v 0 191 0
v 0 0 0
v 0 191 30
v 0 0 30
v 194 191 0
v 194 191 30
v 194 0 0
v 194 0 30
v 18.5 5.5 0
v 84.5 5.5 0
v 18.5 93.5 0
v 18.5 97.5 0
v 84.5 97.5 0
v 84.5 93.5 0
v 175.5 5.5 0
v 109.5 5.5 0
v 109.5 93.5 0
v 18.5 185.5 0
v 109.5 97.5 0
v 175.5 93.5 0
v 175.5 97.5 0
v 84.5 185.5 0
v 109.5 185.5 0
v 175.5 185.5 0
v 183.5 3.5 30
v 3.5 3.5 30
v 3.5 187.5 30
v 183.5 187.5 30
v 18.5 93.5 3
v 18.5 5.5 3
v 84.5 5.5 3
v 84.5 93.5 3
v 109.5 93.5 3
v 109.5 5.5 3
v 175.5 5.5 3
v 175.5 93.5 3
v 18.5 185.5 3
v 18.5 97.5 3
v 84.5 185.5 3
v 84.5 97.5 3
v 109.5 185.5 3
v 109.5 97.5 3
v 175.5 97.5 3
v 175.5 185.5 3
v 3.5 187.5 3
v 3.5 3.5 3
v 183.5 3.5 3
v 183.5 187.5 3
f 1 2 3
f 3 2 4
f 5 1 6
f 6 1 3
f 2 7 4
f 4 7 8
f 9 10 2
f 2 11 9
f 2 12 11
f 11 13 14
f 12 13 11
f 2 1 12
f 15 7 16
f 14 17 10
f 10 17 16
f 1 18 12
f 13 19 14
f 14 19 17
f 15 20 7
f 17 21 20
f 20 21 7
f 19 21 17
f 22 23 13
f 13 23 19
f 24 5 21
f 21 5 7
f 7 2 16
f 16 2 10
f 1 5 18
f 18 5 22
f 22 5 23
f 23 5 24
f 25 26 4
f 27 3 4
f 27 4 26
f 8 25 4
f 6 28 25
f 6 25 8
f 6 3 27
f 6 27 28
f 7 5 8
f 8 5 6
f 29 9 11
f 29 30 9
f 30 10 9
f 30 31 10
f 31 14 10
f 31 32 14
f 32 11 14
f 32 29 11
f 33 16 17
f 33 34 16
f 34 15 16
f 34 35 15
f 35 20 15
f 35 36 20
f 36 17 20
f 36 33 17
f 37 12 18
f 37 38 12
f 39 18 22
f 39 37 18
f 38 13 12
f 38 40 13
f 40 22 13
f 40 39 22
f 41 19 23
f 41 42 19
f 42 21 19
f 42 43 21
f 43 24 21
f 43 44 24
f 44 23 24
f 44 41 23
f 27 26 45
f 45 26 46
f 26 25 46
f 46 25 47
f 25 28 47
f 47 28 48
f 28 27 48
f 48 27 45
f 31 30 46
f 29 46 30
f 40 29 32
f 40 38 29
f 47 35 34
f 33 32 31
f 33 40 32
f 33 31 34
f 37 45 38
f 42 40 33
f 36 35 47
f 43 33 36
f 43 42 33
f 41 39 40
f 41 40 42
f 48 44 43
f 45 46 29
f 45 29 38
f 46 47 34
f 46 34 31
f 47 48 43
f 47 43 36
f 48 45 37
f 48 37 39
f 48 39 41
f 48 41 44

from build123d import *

# Parameters (mm, degrees)
SKETCH_W                        = 194
SKETCH_H                        = 191
PAD_DEPTH                       = 30
SKETCH001_W                     = 180
SKETCH001_H                     = 184
POCKET_DEPTH                    = 27
SKETCH002_W                     = 66
SKETCH002_H                     = 88
POCKET001_DEPTH                 = 5
SKETCH002_LINEARPATTERN_2_W     = 66
SKETCH002_LINEARPATTERN_2_H     = 88
POCKET001_LINEARPATTERN_2_DEPTH = 5
LINEARPATTERN001_COUNT          = 2
LINEARPATTERN001_PITCH          = 92


with BuildPart() as part:
    # Sketch → Pad (new body)
    with BuildSketch(Plane.XY):
        with Locations((97, 95.5)):
            Rectangle(SKETCH_W, SKETCH_H)
    extrude(amount=PAD_DEPTH)

    # Sketch001 (on Face6 of Pad) → Pocket (cut)
    with BuildSketch(Plane.XY.offset(30)):
        with Locations((93.5, 95.5)):
            Rectangle(SKETCH001_W, SKETCH001_H)
    extrude(amount=-POCKET_DEPTH, mode=Mode.SUBTRACT)

    # Sketch002 (on Face11 of Pocket) → Pocket001 (cut)
    with BuildSketch(Plane.XY.offset(3)):
        with Locations((51.5, 141.5)):
            Rectangle(SKETCH002_W, SKETCH002_H)
    pocket001 = extrude(amount=-POCKET001_DEPTH, mode=Mode.SUBTRACT)

    # Sketch002 LinearPattern 2 → Pocket001 LinearPattern 2 (cut)
    with BuildSketch(Plane(origin=(91, 0, 3), x_dir=(1, 0, 0), z_dir=(0, 0, 1))):
        with Locations((51.5, 141.5)):
            Rectangle(SKETCH002_LINEARPATTERN_2_W, SKETCH002_LINEARPATTERN_2_H)
    pocket001_linearpattern_2 = extrude(amount=-POCKET001_LINEARPATTERN_2_DEPTH, mode=Mode.SUBTRACT)

    # LinearPattern001: Pocket001, Pocket001 LinearPattern 2 ×2
    with Locations(*[(0, -i * LINEARPATTERN001_PITCH, 0) for i in range(1, LINEARPATTERN001_COUNT)]):
        add(pocket001, mode=Mode.SUBTRACT)
        add(pocket001_linearpattern_2, mode=Mode.SUBTRACT)


solid = part.part
